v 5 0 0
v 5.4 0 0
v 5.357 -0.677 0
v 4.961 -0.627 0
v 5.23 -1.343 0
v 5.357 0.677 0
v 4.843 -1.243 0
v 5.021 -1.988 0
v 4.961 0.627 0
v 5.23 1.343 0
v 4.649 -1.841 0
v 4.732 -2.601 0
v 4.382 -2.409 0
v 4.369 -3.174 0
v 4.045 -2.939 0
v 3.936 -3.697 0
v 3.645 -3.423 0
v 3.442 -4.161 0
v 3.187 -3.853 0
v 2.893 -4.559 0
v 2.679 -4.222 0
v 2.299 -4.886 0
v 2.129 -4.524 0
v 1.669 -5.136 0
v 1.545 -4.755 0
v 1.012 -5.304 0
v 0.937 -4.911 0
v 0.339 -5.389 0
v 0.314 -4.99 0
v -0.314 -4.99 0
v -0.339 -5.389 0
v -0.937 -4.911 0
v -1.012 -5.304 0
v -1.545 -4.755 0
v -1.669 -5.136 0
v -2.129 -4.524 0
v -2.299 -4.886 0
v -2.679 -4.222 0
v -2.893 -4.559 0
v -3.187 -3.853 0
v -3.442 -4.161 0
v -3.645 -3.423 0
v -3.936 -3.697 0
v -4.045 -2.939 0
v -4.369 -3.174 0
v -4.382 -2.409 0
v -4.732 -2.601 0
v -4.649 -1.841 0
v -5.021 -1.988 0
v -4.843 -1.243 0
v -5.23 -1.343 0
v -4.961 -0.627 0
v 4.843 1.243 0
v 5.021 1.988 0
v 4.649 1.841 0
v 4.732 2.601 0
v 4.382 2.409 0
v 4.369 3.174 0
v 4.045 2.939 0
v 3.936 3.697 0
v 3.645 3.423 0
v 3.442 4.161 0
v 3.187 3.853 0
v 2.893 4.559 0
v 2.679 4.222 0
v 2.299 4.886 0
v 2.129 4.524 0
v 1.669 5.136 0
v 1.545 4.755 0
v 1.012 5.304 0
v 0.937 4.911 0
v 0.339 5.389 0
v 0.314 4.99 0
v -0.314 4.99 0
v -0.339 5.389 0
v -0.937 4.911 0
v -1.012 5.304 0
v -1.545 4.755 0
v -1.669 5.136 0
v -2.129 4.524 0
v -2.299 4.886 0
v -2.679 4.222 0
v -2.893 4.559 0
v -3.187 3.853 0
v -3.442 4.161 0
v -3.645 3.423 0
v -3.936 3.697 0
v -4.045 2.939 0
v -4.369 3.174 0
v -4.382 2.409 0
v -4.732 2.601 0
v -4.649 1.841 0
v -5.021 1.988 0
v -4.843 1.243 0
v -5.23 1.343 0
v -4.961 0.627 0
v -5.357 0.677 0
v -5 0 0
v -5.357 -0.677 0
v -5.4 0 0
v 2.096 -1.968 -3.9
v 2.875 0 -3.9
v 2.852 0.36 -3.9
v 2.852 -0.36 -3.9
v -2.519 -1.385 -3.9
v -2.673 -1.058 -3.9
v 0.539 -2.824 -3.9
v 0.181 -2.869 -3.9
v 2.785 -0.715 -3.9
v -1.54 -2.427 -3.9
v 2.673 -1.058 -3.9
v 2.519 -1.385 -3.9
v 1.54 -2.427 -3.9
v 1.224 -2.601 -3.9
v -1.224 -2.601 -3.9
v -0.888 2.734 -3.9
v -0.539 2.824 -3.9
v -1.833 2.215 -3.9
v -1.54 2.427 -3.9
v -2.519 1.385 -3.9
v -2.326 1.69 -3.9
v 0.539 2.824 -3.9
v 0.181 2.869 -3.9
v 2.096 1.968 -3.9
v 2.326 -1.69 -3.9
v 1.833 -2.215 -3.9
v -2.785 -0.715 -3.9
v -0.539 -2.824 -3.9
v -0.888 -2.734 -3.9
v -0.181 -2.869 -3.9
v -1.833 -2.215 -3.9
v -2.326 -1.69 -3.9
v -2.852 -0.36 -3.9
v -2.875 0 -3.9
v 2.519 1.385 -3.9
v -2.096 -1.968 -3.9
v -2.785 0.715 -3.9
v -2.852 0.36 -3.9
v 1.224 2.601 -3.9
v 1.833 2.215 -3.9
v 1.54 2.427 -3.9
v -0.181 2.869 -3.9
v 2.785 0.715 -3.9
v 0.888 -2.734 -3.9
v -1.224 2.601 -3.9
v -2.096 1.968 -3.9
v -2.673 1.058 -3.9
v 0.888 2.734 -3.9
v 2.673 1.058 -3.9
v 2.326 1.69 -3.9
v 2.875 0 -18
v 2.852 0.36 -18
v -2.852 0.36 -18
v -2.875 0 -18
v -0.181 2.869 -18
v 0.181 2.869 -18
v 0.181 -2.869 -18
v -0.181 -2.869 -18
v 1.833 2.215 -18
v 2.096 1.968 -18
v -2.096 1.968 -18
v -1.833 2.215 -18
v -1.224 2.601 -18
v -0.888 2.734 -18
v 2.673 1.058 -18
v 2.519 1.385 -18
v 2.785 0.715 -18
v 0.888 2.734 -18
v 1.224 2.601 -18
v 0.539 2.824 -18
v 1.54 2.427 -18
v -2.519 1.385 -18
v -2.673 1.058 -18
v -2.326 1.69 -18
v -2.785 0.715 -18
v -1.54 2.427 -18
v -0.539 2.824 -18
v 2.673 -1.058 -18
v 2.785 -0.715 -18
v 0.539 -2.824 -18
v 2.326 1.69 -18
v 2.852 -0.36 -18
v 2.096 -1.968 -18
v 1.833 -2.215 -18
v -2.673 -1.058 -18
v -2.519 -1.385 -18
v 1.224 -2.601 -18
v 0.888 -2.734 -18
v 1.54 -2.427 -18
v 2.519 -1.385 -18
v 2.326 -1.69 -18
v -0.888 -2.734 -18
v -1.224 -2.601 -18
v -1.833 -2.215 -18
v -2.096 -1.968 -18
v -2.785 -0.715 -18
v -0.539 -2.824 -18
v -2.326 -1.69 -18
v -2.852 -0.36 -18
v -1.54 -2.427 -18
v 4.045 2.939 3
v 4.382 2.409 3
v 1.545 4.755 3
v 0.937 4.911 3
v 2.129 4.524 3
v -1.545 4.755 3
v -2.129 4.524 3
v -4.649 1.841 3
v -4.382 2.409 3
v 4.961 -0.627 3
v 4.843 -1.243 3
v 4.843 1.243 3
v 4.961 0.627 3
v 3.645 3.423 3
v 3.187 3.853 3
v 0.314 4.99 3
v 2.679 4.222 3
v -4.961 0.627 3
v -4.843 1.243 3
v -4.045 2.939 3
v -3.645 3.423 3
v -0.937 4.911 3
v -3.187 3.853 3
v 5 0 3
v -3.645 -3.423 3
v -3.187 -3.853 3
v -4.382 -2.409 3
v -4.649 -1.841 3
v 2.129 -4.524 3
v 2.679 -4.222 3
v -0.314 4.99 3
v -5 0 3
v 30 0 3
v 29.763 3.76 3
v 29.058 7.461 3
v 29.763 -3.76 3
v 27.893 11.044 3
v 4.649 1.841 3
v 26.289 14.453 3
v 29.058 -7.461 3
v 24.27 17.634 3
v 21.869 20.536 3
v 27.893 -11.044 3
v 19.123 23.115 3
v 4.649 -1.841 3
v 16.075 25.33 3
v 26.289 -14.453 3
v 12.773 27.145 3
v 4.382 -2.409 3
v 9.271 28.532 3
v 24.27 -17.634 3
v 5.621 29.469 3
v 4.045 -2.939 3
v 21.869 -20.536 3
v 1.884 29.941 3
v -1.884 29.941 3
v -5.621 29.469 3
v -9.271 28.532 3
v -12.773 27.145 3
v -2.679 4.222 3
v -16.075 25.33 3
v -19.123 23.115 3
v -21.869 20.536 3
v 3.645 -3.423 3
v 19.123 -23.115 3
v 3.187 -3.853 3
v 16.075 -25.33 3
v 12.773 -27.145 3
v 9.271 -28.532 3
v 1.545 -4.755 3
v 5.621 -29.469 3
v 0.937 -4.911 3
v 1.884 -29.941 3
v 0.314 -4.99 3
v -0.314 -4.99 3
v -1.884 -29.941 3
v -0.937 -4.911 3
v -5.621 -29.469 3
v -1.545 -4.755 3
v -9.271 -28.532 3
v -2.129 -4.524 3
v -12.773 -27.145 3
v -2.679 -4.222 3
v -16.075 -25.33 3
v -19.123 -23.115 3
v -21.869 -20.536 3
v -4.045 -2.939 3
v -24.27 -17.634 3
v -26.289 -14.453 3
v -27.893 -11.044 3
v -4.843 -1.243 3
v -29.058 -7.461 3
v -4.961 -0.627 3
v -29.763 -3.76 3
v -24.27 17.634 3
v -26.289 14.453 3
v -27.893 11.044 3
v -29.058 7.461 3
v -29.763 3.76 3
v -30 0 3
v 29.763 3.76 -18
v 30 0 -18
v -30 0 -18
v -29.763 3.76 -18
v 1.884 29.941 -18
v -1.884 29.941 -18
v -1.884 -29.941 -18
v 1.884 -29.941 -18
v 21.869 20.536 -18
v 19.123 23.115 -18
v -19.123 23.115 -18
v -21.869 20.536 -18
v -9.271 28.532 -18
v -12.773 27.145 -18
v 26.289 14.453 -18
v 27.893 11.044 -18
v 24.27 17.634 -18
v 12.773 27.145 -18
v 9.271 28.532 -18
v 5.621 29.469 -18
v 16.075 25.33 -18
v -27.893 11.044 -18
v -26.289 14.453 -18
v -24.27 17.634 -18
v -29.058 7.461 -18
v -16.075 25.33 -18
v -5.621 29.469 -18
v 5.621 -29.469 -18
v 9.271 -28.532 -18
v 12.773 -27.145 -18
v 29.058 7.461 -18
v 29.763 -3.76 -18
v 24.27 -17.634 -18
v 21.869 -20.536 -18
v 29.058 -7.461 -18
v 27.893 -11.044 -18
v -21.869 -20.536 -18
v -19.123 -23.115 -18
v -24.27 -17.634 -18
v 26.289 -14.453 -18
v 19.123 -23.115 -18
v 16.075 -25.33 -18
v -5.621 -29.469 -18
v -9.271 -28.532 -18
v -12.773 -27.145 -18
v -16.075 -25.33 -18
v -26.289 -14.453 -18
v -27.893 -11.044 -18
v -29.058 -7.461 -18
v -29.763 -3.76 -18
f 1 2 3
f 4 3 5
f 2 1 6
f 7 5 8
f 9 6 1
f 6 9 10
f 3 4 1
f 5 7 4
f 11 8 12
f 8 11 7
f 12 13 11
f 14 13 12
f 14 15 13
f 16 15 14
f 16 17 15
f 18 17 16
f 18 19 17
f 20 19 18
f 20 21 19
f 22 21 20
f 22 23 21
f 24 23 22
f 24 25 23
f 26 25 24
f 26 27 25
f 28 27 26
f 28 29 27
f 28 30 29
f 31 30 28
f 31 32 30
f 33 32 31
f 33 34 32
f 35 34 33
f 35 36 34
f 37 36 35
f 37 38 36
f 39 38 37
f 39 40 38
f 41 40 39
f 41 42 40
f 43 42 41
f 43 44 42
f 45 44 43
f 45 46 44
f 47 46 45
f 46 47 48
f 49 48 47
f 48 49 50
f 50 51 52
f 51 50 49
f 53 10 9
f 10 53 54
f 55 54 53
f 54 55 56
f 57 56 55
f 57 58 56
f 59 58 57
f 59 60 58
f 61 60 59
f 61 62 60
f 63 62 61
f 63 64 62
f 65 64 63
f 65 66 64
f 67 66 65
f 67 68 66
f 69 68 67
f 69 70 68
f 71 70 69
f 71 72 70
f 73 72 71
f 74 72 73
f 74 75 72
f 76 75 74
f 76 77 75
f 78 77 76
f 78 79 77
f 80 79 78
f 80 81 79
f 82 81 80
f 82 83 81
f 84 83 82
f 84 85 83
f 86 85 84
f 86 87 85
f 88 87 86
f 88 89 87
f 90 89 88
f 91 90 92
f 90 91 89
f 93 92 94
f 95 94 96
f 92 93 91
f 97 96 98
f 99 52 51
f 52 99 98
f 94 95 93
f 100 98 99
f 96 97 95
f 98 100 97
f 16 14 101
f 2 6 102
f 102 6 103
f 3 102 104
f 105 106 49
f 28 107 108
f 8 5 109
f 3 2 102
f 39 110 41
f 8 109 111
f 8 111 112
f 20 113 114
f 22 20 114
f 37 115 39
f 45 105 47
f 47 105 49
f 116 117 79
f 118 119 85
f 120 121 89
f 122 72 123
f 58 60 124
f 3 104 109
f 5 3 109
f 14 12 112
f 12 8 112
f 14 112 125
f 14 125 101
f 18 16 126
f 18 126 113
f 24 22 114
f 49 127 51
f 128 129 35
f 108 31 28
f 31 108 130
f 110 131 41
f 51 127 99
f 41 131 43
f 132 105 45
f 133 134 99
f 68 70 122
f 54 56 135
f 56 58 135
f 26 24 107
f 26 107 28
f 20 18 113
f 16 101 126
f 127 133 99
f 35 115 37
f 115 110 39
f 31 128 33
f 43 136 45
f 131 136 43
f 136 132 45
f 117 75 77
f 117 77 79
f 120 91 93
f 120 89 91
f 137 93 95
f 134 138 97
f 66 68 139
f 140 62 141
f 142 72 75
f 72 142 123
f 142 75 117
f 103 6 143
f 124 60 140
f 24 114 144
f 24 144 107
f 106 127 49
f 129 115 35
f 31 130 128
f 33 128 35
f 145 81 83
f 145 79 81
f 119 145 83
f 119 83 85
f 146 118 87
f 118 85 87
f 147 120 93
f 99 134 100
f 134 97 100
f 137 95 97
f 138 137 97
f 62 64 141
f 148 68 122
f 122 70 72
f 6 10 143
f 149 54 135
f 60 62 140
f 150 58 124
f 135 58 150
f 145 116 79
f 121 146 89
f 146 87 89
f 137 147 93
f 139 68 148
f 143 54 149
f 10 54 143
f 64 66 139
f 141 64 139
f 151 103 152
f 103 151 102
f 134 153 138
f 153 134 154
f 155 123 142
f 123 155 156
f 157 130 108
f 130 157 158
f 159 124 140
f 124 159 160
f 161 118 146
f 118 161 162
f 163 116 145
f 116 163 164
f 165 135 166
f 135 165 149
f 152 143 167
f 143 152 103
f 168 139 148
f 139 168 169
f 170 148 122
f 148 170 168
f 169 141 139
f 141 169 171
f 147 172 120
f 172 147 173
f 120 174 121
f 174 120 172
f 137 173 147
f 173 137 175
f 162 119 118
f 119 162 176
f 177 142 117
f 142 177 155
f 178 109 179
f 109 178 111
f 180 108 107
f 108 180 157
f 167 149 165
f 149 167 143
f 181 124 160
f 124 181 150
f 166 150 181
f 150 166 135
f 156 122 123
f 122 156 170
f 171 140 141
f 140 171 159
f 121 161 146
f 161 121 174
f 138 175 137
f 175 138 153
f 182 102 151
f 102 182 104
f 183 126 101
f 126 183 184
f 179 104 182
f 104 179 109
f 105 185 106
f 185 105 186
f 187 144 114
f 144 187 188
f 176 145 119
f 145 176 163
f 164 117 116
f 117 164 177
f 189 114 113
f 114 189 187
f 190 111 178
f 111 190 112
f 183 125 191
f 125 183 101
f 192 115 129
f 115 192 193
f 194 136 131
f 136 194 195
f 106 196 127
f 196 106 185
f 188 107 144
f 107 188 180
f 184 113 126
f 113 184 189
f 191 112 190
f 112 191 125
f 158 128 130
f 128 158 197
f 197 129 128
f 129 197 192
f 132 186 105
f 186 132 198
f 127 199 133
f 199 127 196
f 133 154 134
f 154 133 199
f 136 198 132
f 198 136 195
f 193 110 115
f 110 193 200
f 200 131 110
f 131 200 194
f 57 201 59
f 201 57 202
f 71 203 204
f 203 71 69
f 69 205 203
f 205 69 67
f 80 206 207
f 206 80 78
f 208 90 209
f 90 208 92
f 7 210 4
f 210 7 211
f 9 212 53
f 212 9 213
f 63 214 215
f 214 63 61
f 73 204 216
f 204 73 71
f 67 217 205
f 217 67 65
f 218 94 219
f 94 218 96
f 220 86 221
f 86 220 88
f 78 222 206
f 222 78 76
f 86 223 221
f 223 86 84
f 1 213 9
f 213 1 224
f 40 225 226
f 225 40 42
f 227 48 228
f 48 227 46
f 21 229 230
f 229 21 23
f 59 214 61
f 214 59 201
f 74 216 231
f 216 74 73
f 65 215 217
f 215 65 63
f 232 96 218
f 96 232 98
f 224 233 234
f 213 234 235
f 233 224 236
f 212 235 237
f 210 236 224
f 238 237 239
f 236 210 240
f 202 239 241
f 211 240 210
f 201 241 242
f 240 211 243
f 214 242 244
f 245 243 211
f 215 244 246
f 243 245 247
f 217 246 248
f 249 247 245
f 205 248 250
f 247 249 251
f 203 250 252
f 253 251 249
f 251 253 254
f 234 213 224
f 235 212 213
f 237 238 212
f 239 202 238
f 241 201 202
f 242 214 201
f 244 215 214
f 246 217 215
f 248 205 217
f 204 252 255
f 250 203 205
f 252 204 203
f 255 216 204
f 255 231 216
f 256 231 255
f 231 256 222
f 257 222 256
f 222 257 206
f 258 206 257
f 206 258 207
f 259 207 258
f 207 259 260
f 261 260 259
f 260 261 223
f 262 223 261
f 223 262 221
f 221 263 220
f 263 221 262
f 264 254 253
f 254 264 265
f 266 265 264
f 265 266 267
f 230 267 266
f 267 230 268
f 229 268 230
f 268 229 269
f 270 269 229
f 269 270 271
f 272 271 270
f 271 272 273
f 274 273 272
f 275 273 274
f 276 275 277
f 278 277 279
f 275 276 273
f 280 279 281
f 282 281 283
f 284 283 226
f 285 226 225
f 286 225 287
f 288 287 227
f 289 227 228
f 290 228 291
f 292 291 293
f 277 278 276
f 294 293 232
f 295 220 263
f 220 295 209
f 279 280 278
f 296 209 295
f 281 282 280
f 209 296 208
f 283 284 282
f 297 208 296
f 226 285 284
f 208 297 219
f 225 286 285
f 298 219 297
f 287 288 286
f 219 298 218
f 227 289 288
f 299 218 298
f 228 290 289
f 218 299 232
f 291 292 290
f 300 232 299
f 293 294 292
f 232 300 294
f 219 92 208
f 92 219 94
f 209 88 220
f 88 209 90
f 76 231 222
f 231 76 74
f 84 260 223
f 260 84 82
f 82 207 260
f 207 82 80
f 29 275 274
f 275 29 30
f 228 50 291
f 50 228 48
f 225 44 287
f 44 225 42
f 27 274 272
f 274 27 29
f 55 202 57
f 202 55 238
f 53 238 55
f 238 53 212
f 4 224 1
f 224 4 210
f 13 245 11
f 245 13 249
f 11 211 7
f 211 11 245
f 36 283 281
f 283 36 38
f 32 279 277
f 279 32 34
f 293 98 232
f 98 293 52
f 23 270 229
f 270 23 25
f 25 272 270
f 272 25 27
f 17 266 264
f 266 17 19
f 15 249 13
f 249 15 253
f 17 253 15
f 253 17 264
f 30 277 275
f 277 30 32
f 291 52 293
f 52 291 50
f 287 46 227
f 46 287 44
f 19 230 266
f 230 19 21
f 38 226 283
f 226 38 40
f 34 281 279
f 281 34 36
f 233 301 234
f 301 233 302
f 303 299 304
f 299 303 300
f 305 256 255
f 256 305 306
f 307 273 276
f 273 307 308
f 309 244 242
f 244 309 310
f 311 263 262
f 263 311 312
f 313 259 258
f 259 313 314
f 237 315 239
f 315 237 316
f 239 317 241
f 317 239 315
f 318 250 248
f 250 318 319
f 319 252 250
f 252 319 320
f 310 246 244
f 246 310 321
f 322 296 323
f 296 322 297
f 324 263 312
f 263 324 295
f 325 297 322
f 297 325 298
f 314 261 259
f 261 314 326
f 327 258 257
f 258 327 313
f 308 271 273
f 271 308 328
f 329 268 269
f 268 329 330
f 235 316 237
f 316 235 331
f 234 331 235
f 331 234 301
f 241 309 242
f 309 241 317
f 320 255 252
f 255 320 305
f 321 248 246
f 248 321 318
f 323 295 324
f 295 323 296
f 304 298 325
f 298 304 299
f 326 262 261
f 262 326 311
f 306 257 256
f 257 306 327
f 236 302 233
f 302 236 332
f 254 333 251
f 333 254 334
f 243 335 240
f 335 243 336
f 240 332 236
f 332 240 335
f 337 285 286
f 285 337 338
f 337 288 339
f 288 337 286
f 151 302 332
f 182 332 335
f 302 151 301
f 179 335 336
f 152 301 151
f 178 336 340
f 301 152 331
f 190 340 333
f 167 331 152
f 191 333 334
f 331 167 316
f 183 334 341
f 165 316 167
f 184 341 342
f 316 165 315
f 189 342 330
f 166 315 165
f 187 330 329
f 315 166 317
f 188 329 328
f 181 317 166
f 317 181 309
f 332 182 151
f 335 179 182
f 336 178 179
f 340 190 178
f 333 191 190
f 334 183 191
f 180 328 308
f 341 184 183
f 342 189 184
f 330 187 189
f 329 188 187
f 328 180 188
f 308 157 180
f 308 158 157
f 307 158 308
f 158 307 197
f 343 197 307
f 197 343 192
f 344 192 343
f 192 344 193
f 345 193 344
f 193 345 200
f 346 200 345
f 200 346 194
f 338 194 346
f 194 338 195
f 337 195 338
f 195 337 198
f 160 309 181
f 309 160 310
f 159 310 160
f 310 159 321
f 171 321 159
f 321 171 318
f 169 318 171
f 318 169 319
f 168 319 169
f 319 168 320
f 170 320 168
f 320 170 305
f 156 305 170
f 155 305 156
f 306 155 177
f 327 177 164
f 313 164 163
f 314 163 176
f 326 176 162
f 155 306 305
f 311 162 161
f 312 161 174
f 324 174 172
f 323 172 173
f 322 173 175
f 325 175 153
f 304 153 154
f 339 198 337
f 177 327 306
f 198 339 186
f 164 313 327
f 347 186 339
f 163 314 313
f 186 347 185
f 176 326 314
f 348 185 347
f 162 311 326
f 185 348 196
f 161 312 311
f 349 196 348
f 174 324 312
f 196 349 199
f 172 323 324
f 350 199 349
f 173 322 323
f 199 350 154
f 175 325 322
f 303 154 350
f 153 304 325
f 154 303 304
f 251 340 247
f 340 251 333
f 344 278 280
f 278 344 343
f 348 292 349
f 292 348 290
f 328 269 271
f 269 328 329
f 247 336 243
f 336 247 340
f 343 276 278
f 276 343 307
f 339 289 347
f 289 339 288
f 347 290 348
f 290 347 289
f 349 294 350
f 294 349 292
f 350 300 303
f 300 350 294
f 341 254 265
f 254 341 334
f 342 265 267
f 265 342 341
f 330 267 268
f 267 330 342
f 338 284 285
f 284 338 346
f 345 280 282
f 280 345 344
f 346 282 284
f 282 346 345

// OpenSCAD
$fn = 50;


difference() {
	union() {
		translate(v = [0, 0, -18.0000000000]) {
			cylinder(h = 21, r = 30.0000000000);
		}
	}
	union() {
		translate(v = [0, 0, 0]) {
			rotate(a = [0, 0, 0]) {
				difference() {
					union() {
						translate(v = [0, 0, -21.0000000000]) {
							cylinder(h = 21, r = 2.6000000000);
						}
						translate(v = [0, 0, -3.9000000000]) {
							cylinder(h = 3.9000000000, r1 = 2.8750000000, r2 = 5.4000000000);
						}
						translate(v = [0, 0, -21.0000000000]) {
							cylinder(h = 21, r = 2.8750000000);
						}
						translate(v = [0, 0, -21.0000000000]) {
							cylinder(h = 21, r = 2.6000000000);
						}
					}
					union();
				}
			}
		}
		#cylinder(h = 3, r = 5.0000000000);
	}
}
